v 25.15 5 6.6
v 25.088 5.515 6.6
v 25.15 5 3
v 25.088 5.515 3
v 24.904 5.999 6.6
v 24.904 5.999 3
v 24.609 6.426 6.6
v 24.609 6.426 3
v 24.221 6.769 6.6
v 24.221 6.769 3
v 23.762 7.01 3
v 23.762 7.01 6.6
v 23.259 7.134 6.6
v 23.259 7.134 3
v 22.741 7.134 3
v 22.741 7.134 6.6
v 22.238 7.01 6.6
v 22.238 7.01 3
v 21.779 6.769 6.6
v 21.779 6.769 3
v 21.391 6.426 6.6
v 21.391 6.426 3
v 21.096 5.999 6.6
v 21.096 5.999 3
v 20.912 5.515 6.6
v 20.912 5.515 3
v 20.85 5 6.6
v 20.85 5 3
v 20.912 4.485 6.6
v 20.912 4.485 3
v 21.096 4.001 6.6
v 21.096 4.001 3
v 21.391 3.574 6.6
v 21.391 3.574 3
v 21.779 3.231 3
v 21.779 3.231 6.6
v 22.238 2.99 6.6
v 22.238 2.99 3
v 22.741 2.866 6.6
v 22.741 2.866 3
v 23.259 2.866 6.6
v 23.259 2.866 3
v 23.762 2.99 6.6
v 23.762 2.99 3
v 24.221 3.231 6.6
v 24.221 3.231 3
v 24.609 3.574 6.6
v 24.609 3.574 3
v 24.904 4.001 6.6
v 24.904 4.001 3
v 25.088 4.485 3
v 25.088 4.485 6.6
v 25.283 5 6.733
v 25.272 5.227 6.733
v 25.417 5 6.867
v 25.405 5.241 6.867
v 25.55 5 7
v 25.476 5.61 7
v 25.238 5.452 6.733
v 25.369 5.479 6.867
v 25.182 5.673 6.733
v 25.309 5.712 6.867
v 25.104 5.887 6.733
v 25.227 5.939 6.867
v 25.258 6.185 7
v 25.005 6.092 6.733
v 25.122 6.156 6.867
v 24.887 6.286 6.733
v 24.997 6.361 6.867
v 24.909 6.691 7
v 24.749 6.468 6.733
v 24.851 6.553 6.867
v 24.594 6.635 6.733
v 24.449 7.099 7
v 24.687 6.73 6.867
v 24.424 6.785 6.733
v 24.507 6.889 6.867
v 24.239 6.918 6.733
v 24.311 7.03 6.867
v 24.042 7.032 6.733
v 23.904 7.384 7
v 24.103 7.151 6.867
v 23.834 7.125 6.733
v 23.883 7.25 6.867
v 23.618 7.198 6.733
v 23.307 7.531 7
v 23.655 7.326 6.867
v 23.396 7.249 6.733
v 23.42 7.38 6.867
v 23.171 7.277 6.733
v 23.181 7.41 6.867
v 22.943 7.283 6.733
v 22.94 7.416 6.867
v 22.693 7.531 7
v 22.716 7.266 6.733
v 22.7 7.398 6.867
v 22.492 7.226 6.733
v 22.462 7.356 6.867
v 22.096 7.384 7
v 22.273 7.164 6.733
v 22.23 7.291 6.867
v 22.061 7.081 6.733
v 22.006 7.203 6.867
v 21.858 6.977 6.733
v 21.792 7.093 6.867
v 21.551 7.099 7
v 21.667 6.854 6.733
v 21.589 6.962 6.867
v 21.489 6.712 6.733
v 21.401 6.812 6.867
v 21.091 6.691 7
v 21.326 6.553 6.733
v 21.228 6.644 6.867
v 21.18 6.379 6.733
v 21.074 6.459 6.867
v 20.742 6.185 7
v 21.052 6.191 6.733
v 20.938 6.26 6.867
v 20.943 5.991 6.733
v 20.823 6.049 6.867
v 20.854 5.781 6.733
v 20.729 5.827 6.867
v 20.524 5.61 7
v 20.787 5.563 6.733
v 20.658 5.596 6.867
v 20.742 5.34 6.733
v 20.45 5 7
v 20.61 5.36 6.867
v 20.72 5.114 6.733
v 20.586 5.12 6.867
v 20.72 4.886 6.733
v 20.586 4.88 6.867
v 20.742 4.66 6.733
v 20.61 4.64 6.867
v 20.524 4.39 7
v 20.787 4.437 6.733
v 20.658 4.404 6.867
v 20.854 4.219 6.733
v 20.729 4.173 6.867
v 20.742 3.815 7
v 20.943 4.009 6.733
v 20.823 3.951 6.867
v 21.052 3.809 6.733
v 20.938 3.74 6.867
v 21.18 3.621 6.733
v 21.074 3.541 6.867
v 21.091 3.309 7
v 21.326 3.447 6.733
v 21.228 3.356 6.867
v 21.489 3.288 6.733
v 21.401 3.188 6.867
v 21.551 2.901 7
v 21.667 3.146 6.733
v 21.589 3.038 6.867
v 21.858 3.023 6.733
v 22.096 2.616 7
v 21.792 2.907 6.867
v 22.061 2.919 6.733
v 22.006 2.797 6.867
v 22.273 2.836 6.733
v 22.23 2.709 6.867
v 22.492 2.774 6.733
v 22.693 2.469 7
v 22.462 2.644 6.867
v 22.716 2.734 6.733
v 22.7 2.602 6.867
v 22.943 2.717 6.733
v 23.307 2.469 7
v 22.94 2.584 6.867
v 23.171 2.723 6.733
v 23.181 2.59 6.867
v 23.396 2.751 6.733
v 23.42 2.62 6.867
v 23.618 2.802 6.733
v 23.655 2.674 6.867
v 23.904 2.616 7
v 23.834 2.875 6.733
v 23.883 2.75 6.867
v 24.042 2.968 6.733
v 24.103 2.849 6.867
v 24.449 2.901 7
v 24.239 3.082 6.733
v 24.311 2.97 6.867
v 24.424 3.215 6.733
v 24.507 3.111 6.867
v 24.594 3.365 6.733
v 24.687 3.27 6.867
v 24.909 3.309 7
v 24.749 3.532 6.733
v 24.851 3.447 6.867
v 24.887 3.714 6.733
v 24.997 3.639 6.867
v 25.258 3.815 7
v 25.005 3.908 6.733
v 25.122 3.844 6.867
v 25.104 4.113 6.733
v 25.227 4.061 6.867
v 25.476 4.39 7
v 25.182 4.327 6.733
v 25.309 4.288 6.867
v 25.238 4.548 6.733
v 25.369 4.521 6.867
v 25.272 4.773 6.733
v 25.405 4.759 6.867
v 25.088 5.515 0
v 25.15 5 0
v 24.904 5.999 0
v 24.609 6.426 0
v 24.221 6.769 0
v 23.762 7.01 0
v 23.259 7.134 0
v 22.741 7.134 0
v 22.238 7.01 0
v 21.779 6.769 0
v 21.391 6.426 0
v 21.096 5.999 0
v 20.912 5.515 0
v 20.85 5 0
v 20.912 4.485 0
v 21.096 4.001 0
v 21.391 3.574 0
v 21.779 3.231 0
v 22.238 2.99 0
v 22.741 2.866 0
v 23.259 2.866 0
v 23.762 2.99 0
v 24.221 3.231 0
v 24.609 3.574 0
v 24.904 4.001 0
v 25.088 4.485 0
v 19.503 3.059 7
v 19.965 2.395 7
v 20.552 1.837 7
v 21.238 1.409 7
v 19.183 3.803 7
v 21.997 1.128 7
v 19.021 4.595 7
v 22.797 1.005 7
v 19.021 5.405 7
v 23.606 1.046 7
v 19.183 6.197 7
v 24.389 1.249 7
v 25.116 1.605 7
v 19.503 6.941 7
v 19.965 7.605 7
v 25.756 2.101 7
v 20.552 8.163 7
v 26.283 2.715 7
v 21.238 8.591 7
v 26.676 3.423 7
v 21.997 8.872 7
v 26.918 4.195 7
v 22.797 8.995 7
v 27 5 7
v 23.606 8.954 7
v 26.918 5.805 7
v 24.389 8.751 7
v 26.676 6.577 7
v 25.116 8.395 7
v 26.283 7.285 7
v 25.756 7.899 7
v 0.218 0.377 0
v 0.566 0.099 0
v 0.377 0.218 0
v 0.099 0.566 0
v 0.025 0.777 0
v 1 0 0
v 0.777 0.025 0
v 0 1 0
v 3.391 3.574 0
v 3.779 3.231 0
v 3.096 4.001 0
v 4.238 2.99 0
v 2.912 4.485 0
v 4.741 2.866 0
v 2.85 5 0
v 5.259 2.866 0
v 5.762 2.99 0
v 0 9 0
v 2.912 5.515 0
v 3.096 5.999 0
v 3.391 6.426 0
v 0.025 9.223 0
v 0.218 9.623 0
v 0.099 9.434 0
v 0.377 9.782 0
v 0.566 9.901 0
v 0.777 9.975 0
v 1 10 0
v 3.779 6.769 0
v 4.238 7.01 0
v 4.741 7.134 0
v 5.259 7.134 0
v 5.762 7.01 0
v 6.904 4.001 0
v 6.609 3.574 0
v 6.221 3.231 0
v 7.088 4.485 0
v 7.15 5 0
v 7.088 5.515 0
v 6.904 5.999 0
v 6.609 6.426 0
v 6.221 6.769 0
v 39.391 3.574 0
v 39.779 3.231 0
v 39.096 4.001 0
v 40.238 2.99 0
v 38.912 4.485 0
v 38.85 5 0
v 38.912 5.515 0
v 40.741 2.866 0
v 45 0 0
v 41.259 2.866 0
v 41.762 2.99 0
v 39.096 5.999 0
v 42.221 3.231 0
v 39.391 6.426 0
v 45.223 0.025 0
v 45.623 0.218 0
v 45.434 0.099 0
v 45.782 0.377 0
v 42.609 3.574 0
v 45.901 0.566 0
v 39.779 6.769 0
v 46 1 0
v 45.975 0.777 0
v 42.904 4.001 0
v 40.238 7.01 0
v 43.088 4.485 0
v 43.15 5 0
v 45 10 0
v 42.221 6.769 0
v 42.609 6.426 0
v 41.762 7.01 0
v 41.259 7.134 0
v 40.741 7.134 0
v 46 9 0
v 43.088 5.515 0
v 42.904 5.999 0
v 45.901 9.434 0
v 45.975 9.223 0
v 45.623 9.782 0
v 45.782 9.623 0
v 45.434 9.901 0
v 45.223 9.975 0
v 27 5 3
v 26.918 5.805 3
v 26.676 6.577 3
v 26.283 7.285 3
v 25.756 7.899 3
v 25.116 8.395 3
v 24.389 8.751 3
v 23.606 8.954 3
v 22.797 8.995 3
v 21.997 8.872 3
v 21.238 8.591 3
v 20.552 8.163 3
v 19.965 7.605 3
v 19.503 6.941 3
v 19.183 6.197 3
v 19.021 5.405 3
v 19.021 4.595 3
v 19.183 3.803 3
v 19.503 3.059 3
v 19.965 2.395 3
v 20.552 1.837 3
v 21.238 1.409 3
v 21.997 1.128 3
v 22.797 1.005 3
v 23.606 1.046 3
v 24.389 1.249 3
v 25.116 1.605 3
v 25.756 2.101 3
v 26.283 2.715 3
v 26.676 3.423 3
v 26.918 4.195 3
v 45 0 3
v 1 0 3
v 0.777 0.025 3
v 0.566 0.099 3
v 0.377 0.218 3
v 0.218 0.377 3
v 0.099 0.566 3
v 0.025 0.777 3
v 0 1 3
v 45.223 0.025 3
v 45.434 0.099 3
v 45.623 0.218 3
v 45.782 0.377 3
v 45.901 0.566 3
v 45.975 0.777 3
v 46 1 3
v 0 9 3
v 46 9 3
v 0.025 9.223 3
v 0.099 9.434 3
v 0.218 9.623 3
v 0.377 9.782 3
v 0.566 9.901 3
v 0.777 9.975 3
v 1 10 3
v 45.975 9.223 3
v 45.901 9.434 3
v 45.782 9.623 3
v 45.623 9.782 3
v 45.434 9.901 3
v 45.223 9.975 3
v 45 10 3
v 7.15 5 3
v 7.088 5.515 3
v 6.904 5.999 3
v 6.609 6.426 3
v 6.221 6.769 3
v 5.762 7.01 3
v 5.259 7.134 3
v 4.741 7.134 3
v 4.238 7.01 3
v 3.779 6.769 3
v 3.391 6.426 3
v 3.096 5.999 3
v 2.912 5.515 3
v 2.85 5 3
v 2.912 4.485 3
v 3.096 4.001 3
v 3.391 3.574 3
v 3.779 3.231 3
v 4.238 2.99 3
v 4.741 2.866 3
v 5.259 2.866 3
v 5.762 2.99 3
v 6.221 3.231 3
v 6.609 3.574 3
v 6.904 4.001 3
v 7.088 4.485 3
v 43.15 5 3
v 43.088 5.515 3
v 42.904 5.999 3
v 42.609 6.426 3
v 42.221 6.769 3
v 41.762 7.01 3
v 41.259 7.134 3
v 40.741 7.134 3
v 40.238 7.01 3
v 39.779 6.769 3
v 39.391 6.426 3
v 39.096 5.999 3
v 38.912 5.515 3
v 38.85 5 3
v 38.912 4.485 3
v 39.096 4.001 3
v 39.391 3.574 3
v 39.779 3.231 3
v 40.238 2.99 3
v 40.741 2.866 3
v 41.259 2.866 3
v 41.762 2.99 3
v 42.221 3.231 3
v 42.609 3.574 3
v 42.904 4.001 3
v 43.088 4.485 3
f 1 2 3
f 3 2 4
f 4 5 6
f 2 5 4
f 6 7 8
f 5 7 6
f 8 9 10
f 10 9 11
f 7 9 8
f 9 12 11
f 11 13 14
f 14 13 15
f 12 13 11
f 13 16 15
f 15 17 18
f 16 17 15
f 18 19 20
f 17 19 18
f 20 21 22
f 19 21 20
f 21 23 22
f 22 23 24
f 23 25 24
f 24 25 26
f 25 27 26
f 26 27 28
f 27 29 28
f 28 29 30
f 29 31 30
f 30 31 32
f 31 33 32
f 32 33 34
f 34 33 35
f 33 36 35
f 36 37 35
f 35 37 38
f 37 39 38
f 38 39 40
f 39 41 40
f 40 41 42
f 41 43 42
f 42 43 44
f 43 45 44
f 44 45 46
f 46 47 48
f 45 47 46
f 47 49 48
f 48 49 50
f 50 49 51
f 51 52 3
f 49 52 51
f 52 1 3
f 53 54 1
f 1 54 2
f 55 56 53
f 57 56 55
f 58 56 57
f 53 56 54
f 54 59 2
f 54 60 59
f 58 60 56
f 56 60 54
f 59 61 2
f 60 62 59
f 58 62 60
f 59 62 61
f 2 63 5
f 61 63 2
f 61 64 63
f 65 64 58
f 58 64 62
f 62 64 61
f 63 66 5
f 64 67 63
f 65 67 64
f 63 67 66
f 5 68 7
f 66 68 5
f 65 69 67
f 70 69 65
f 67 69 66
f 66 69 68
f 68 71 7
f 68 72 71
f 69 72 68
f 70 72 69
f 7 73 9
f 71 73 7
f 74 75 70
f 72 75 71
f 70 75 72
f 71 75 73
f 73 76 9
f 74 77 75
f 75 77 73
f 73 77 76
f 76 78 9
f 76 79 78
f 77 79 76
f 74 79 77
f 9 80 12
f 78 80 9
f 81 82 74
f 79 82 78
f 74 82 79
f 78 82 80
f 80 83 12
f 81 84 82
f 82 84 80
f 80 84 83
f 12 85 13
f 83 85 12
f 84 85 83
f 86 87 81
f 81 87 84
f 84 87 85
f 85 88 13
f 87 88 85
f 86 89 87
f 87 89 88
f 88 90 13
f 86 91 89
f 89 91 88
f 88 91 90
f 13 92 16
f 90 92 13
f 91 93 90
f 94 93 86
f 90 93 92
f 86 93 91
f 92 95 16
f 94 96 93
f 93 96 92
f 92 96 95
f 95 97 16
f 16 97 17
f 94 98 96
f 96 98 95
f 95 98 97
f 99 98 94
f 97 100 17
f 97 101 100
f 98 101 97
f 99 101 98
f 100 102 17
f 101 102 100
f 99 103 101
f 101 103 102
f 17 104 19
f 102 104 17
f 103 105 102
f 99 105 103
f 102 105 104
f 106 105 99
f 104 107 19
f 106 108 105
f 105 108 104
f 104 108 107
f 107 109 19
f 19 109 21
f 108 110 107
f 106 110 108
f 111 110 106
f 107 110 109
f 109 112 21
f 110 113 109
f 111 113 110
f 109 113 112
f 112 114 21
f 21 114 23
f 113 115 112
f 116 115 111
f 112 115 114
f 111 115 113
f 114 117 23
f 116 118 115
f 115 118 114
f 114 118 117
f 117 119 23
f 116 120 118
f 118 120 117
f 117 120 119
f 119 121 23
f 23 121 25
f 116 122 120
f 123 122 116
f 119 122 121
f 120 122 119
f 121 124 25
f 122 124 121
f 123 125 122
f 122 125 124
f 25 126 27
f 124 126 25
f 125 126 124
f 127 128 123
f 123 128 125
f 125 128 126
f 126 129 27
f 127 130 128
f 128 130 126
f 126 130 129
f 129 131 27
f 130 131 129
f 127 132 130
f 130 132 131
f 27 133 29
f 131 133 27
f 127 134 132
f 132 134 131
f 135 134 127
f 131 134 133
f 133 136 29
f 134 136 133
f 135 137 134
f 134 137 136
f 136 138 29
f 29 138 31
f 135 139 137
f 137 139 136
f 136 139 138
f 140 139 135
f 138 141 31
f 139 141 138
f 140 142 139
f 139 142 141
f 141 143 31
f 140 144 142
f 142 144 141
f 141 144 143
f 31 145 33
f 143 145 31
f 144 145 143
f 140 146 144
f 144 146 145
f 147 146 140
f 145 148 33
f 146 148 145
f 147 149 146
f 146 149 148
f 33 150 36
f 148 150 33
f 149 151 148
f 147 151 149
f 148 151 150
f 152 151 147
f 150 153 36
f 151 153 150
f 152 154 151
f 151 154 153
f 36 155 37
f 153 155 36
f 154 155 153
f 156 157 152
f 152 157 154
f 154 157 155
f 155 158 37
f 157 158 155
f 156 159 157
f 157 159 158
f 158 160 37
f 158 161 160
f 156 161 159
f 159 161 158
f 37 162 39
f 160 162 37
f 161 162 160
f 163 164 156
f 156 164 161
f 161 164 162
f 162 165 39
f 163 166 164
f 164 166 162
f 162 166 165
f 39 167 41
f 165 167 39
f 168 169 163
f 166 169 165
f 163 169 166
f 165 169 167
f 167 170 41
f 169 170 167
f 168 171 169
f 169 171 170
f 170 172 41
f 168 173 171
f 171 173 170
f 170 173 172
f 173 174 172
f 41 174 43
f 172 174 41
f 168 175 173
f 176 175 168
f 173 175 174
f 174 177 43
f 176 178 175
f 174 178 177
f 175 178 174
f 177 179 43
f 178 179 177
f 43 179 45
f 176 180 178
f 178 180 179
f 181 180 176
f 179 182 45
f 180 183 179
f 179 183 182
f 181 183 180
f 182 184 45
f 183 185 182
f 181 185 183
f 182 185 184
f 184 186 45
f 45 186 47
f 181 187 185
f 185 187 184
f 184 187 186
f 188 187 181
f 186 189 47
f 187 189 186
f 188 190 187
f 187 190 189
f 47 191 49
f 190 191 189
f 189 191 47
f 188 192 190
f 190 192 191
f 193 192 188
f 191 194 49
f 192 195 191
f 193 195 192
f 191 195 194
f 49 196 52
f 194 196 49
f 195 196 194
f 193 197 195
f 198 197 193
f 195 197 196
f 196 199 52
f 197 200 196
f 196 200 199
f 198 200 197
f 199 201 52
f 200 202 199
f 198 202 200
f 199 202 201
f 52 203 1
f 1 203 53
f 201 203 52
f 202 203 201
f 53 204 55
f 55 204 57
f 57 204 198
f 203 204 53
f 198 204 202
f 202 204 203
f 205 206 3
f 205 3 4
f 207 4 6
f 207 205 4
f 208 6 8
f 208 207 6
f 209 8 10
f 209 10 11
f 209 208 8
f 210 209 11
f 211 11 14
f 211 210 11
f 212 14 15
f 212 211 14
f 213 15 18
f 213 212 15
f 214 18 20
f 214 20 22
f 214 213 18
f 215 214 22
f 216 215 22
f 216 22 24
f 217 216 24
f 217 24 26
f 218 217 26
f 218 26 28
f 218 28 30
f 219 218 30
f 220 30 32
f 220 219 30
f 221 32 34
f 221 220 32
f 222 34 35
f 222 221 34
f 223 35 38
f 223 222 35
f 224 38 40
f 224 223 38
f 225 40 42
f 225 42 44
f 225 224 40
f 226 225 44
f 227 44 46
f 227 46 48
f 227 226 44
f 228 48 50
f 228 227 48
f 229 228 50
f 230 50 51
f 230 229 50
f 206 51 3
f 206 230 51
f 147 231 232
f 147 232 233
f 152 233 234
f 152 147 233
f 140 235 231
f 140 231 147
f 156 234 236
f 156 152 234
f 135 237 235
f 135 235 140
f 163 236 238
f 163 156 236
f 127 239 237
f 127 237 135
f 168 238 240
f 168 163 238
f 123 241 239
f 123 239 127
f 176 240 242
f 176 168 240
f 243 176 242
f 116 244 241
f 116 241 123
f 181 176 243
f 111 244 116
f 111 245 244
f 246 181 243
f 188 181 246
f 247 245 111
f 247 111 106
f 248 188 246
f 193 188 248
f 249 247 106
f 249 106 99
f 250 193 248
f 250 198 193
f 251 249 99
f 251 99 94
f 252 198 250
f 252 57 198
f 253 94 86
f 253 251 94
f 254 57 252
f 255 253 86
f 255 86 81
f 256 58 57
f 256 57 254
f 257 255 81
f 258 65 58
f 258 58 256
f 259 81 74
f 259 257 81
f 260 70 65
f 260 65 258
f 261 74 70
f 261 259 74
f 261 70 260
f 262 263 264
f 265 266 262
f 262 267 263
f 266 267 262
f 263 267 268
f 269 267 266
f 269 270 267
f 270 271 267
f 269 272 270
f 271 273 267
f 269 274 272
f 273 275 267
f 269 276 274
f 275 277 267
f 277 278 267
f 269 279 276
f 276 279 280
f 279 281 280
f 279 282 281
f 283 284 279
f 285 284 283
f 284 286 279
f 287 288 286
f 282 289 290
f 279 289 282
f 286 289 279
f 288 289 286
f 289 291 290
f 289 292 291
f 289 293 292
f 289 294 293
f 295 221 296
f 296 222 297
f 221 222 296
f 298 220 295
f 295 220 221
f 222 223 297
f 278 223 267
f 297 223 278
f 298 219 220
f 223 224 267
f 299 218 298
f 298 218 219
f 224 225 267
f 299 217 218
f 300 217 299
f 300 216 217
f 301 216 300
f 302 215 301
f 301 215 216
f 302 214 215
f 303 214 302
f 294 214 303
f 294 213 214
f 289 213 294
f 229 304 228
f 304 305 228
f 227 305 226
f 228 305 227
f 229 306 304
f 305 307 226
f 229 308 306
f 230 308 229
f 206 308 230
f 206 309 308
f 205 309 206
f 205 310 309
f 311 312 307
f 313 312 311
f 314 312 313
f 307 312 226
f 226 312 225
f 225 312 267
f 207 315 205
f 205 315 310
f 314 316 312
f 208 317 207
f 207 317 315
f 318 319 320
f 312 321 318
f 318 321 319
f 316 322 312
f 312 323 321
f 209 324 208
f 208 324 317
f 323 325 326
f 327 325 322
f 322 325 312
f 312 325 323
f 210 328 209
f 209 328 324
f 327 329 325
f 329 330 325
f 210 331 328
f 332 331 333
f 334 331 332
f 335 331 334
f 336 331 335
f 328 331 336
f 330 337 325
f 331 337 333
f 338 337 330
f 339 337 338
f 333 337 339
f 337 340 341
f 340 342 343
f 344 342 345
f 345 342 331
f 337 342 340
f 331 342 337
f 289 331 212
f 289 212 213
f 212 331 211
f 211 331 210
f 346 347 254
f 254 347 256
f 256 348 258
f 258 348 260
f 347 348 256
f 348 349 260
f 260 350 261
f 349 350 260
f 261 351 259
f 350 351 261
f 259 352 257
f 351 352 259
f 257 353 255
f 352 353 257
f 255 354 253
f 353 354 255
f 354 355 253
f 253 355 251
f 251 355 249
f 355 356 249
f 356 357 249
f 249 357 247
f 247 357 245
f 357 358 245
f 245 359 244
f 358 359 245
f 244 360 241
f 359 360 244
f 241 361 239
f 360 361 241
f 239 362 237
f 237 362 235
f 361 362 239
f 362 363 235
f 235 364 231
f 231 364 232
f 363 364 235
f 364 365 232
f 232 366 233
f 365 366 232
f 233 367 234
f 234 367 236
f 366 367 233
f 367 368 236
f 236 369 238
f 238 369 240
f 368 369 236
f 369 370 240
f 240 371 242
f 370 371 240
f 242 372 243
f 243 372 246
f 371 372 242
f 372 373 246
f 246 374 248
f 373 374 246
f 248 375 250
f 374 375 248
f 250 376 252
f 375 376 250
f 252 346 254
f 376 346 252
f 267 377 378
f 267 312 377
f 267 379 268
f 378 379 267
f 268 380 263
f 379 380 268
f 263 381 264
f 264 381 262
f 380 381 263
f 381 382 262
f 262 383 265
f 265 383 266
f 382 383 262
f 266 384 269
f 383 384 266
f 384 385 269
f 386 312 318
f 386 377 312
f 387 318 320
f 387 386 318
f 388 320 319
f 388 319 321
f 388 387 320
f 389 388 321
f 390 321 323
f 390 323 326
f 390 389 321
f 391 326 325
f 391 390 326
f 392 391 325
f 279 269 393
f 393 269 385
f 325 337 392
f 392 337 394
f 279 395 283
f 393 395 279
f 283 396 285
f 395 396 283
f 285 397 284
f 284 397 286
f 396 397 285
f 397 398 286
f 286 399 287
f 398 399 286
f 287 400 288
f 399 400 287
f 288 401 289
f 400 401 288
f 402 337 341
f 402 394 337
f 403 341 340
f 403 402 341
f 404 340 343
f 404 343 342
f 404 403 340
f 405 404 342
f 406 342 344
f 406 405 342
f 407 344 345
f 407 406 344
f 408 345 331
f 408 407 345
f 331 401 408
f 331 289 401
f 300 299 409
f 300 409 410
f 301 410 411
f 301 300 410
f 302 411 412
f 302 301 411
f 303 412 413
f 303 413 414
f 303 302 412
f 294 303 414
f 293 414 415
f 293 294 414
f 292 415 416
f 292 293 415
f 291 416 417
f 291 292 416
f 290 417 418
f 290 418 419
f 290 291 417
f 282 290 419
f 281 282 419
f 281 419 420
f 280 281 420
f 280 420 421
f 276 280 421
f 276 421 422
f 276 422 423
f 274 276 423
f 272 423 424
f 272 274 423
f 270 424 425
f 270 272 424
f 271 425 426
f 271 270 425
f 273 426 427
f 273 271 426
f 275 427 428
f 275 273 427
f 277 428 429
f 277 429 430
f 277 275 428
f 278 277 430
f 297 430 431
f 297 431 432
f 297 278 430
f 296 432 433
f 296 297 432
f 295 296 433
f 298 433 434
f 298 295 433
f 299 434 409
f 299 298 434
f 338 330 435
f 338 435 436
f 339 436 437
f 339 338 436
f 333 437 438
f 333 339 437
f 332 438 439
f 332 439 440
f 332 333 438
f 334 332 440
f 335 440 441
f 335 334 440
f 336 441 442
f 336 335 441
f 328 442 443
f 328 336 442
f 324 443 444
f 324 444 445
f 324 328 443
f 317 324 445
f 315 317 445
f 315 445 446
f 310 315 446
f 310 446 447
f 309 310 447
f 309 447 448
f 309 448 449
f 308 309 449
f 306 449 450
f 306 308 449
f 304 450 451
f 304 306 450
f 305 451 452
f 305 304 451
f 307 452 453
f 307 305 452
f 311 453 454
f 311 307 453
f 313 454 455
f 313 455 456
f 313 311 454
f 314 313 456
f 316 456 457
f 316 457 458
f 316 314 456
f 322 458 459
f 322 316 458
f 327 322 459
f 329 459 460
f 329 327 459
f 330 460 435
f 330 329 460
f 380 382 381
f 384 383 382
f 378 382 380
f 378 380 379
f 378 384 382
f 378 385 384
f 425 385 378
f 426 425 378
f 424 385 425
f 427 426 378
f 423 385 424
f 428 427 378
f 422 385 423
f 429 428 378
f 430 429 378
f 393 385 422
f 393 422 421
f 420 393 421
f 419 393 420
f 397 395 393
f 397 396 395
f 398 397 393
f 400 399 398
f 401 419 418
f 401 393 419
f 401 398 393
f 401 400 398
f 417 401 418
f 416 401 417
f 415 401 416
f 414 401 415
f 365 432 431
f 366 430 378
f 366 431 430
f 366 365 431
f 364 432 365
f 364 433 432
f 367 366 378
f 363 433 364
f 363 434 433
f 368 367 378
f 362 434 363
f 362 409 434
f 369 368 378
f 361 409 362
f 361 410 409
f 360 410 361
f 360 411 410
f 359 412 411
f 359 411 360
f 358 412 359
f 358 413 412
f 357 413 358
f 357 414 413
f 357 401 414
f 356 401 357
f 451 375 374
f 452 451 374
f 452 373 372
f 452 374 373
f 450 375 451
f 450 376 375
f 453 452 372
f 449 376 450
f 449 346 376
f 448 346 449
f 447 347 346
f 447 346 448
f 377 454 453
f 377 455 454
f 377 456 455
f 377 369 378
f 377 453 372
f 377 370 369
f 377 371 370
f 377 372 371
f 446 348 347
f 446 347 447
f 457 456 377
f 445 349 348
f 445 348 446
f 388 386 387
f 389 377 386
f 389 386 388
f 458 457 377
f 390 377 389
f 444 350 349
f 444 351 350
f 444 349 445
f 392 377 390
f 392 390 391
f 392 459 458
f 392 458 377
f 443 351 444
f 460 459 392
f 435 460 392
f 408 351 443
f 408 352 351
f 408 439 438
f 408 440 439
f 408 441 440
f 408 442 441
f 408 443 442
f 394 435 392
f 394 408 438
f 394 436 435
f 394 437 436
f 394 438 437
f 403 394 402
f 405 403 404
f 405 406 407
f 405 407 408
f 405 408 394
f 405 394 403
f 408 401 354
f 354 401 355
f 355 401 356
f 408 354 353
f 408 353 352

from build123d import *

# Parameters (mm, degrees)
SKETCH_W     = 46
SKETCH_H     = 10
SKETCH_R     = 2.15
PAD_DEPTH    = 3
SKETCH001_R  = 4
PAD001_DEPTH = 4
SKETCH002_R  = 2.15
POCKET_DEPTH = 7.001
FILLET_R     = 1
CHAMFER_SIZE = 0.4


with BuildPart() as part:
    # Sketch → Pad (new body)
    with BuildSketch(Plane.XY):
        with Locations((23, 5)):
            Rectangle(SKETCH_W, SKETCH_H)
        with Locations((5, 5)):
            Circle(SKETCH_R, mode=Mode.SUBTRACT)
        with Locations((41, 5)):
            Circle(SKETCH_R, mode=Mode.SUBTRACT)
        with Locations((23, 5)):
            Circle(SKETCH_R, mode=Mode.SUBTRACT)
    extrude(amount=PAD_DEPTH)

    # Sketch001 (on Face9 of Pad) → Pad001 (join)
    with BuildSketch(Plane.XY.offset(3)):
        with Locations((23, 5)):
            Circle(SKETCH001_R)
    extrude(amount=PAD001_DEPTH)

    # Sketch002 (on Face12 of Pad001) → Pocket (cut, through all)
    with BuildSketch(Plane.XY.offset(7)):
        with Locations((23, 5)):
            Circle(SKETCH002_R)
    extrude(amount=-POCKET_DEPTH, mode=Mode.SUBTRACT)

    # Fillet
    fillet_edges = [part.edges().sort_by_distance(p)[0] for p in [
        (0, 10, 1.5),
        (0, 0, 1.5),
        (46, 0, 1.5),
        (46, 10, 1.5),
    ]]
    fillet(fillet_edges, radius=FILLET_R)

    # Chamfer
    chamfer_edges = [part.edges().sort_by_distance(p)[0] for p in [
        (20.85, 5, 7),
    ]]
    chamfer(chamfer_edges, length=CHAMFER_SIZE)


solid = part.part
